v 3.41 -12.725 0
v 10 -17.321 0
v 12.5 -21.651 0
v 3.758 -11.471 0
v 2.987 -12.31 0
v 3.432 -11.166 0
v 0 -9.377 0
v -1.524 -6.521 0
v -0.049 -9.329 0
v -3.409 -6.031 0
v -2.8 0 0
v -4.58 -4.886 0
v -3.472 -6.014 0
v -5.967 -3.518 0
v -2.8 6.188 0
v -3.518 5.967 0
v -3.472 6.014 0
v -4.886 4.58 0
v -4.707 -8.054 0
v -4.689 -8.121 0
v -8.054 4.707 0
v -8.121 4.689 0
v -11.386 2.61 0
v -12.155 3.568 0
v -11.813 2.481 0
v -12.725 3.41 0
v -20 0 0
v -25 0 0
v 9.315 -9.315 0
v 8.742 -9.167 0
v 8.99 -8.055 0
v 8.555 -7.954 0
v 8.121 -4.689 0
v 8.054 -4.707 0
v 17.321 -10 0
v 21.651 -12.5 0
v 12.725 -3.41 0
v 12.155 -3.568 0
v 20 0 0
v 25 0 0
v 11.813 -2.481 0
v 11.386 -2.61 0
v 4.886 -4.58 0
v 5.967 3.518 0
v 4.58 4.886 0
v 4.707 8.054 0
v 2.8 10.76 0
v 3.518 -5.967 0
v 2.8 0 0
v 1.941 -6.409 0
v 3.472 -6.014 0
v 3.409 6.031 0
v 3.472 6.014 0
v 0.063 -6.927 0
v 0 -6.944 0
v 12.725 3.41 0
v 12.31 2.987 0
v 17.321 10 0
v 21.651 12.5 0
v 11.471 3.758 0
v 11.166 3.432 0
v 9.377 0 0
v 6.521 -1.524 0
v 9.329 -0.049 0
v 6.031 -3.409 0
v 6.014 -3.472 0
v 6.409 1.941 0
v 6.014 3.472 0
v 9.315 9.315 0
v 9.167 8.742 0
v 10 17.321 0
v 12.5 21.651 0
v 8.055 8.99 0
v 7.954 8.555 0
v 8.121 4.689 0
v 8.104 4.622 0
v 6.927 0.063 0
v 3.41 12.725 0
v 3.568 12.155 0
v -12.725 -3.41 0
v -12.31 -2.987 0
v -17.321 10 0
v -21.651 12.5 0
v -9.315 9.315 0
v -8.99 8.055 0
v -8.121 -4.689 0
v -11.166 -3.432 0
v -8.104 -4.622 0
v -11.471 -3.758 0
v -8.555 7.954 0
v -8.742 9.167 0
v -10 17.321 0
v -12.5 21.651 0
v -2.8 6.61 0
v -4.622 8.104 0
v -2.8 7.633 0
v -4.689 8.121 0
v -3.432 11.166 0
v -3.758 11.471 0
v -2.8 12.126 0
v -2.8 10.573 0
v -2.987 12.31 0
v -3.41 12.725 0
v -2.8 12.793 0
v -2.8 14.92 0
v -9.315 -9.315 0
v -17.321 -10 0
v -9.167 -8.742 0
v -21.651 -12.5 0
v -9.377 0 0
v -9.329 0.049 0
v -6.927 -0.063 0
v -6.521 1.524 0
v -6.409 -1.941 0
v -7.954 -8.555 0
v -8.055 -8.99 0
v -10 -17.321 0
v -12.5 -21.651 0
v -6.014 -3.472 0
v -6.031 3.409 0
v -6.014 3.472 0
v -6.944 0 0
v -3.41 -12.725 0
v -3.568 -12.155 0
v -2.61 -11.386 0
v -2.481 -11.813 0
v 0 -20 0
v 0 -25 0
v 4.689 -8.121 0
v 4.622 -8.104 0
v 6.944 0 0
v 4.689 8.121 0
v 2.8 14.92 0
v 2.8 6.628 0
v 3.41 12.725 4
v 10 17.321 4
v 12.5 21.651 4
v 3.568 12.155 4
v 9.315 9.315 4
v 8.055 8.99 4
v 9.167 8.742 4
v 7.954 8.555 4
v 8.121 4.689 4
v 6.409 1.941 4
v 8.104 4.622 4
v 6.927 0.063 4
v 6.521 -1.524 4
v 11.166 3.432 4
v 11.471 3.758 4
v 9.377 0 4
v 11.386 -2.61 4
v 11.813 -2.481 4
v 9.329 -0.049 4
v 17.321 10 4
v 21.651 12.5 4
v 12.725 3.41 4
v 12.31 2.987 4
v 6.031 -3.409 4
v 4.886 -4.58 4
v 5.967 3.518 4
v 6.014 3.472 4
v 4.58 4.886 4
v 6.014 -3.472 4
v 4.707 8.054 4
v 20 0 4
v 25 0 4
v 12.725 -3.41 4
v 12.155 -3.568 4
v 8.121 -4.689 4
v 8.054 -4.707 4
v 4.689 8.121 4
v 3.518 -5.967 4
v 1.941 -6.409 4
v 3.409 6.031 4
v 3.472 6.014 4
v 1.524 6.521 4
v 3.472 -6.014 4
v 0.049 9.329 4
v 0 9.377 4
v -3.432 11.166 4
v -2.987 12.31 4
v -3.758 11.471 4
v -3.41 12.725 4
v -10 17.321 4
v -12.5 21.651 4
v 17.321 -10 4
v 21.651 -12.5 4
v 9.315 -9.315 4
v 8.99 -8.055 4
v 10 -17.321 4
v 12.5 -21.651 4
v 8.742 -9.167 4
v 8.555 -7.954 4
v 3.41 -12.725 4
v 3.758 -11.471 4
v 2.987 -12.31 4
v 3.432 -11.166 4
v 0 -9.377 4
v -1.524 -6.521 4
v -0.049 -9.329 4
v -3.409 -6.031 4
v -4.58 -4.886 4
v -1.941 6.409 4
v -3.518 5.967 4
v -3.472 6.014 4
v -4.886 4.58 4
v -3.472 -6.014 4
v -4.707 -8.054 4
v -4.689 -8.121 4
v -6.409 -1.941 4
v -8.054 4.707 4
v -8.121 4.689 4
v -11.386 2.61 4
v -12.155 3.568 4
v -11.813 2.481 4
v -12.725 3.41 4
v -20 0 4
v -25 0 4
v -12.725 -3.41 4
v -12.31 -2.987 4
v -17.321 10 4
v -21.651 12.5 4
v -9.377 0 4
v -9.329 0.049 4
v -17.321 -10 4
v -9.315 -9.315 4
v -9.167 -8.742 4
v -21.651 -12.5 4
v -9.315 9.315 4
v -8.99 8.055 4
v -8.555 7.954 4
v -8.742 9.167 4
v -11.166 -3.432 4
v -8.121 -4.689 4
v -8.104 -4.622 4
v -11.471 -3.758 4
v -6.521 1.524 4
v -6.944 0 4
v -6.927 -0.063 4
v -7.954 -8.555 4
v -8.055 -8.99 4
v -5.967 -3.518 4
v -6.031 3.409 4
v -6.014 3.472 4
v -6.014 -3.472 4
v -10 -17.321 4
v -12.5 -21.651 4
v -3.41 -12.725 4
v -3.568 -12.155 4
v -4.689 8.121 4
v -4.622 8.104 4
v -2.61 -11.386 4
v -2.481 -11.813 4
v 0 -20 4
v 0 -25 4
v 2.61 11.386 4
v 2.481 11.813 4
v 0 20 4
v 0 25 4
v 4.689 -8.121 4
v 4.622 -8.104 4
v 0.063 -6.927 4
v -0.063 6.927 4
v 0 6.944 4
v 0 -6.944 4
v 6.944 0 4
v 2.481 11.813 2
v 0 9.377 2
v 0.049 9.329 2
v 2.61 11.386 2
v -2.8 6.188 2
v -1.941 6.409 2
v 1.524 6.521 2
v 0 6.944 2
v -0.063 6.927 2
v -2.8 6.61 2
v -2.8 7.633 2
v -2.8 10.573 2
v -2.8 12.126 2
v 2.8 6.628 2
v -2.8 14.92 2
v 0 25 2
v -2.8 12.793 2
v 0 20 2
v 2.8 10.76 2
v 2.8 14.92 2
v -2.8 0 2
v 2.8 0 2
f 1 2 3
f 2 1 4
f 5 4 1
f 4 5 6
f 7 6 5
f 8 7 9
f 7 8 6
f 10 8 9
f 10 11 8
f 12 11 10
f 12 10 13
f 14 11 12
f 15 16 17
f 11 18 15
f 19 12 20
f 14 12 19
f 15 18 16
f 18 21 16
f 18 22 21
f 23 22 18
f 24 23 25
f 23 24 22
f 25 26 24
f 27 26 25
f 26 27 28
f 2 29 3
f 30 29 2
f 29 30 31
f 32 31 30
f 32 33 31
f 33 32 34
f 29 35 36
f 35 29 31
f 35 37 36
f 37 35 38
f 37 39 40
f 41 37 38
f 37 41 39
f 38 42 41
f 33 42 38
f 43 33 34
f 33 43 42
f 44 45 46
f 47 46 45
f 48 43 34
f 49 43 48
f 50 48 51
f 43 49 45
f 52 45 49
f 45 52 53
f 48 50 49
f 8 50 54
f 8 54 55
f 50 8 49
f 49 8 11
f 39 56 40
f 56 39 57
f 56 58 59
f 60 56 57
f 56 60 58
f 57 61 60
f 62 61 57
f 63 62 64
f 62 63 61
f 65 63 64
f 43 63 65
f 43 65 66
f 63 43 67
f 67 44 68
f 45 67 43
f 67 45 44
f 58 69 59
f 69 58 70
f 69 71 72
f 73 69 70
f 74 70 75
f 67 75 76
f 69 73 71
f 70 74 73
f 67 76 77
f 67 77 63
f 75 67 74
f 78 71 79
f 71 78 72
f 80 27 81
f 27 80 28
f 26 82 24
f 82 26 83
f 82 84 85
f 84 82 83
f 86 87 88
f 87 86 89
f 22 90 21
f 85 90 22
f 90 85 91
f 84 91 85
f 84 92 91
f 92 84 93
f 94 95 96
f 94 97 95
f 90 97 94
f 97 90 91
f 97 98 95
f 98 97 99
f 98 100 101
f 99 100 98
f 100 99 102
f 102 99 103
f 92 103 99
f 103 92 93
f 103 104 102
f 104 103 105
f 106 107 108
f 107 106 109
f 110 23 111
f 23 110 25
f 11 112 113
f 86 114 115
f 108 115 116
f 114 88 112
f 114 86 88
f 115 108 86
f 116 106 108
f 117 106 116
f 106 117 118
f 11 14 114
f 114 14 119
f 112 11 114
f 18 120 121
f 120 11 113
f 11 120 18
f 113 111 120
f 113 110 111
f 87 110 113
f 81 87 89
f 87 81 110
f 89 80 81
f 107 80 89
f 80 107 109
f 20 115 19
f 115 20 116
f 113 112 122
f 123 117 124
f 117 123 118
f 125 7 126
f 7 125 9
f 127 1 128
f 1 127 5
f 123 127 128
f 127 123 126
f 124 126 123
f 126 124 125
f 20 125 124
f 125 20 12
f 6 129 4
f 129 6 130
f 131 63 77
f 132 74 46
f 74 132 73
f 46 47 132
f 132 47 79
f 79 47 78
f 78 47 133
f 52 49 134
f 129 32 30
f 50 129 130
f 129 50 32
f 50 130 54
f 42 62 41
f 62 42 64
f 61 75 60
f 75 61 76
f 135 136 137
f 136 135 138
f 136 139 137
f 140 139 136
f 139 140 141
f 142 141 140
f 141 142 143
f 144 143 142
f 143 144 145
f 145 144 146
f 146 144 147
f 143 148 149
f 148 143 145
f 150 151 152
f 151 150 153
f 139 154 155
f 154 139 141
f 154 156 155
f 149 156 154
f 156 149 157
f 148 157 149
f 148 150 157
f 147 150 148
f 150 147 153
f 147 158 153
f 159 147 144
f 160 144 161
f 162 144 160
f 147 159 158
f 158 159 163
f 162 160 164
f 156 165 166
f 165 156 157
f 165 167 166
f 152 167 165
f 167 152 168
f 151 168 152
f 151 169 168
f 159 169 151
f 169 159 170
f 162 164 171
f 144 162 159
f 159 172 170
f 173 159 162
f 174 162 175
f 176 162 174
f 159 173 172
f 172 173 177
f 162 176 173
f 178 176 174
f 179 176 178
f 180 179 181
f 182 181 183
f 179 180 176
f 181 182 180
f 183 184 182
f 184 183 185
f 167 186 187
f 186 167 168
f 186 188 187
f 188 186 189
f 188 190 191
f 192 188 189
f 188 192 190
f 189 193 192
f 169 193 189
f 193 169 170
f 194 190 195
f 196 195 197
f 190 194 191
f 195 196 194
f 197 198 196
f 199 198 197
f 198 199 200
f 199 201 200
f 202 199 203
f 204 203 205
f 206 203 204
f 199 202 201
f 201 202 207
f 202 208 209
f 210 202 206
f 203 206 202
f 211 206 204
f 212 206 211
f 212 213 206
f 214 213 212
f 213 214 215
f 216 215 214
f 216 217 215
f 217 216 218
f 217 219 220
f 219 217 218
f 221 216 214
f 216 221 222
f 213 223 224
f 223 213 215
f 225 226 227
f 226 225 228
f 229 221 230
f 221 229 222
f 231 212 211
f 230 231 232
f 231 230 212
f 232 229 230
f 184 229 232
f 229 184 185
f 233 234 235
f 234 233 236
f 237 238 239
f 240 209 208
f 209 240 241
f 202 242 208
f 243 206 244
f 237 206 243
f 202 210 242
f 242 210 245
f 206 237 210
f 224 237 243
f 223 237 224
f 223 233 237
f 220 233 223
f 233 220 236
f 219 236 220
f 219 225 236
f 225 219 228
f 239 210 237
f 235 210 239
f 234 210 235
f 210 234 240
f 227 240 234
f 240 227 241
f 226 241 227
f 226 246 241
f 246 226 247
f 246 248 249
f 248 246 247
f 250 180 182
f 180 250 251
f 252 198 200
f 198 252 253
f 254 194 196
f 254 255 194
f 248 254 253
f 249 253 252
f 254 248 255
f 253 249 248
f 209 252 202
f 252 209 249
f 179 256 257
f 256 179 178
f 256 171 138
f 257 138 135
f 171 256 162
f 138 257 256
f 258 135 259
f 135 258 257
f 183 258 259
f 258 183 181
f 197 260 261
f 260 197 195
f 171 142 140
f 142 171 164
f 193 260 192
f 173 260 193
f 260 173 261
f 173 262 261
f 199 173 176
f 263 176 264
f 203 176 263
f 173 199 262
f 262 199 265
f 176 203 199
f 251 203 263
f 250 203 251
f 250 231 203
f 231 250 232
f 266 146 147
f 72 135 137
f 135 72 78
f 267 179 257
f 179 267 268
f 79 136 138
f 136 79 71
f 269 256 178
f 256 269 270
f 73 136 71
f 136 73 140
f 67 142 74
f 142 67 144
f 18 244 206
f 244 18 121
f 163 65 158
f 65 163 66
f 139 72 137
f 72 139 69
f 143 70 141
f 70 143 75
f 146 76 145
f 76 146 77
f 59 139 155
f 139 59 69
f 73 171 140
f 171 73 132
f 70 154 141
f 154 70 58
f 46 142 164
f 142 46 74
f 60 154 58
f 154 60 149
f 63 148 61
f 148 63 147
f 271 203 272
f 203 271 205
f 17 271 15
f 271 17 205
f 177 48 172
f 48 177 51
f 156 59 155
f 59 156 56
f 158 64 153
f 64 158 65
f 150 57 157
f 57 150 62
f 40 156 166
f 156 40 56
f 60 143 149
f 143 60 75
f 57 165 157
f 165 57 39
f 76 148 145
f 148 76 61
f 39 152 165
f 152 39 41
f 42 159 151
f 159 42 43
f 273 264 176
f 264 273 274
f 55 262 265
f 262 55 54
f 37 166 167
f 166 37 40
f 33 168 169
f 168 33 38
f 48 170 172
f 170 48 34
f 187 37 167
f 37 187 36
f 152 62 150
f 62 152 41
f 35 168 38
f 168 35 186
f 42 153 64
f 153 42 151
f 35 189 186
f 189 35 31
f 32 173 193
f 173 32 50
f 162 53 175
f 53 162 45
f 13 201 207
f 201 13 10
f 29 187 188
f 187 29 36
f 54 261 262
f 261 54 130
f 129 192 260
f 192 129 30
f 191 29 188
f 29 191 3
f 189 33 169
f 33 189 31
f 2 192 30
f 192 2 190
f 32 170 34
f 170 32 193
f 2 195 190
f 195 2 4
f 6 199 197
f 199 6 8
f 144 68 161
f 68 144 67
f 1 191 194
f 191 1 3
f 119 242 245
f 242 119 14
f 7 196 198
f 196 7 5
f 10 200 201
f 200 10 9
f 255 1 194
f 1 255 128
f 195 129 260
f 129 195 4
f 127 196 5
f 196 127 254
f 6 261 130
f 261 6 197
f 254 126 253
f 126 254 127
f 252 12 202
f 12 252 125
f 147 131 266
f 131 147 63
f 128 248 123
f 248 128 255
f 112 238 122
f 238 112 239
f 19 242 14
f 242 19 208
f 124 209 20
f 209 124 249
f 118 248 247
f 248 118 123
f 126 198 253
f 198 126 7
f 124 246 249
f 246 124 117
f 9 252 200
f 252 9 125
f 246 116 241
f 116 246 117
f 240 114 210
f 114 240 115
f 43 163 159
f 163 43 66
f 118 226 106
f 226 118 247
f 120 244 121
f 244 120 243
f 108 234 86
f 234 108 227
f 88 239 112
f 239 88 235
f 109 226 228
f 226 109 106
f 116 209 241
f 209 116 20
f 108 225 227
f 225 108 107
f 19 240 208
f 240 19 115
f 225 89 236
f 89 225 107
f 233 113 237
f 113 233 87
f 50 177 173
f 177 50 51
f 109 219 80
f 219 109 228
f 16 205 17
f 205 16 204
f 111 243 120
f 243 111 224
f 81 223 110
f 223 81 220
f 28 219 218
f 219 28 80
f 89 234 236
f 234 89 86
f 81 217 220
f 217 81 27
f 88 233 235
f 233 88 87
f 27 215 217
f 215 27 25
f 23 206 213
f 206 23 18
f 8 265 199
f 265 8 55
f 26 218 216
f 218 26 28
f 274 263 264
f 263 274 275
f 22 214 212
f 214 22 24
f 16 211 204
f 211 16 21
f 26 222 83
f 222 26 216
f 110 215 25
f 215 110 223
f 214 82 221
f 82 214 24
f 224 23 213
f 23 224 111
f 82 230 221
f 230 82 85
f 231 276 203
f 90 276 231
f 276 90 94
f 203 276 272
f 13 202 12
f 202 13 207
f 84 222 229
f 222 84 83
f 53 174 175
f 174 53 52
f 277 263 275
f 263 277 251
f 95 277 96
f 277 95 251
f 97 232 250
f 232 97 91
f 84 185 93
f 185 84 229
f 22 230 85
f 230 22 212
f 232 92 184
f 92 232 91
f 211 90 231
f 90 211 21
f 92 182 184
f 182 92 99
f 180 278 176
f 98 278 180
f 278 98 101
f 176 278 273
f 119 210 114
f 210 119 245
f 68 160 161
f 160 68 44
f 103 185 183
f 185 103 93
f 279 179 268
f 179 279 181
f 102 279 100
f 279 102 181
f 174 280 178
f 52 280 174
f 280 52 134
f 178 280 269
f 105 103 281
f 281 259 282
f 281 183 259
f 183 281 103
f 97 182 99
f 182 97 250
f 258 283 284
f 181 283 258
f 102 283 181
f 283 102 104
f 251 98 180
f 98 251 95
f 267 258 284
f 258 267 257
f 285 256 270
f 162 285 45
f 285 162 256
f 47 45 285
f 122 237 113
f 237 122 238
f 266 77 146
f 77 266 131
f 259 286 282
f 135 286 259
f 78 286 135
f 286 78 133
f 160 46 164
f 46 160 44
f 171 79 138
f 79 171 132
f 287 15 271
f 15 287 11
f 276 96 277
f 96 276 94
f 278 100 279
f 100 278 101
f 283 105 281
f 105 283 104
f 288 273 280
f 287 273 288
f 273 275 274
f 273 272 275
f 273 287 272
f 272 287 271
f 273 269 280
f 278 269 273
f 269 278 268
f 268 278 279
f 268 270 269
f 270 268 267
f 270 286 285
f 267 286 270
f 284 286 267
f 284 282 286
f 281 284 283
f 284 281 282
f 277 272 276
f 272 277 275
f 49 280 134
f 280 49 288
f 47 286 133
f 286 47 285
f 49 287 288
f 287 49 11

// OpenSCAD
// file: clock_001.scad
//
// OpenSCAD 時計文字盤 001
//
$fn=200;

clock_001();




// clock 001
module clock_001(face_r = 180/2) {
    difference() {
        clock_face(face_r =face_r);
        cylinder(h=20, r=4.2);
    }
}

// 盤面
module clock_face(face_r=180/2)
{
    hourText12_under(r=face_r, h=4, w=10);//

    translate([0,0,4]) {
        hourText12(size=15,r=face_r); // 時間数字１２時間分
    }

    triangle_frame(h=face_r, w=50);

}








//===================================
// フレーム
//===================================

// 三角フレームの真ん中(n=1~4)
module triangle_frame_center(h=190, w=100, n=4) {
    linear_extrude(height=4) {
        for (i=[1:12]) {
            intersection_for(j=[0:n-1]) {
                rotate([0,0,-30*(i+j)]){ triangle1(h=h, w=w, scale=1.0);}   
            }
        }
    }
}

// 三角のフレーム
module triangle_frame(h=190, w=100) {
    for (i=[1:12]) {
        rotate([0,0,-30*i]) {
            linear_extrude(height=4) {
                difference() {
                    triangle1(h=h, w=w, scale=1.0);
                    triangle2(h=h, w=w, scale=0.8);
                }
            }
        }
    }
}

// 三角(2D一つ)
module triangle1(h=180, w=100, scale=1.0) {
    polygon([[0,h*scale],[-w*scale/2,(h-h*scale)/1],[w*scale/2,(h-h*scale)/2]]);
}

module triangle2(h=180, w=100, scale=1.0) {
    polygon([[0,h*scale],[-w/1.95,(h-h*scale)/3],[w*scale/2,(h-h*scale)/3]]);
}


//===================================
// 時間の数字の下敷き
//===================================

module hourText12_under(r=190, h=4, w=20) {
    for (i=[1:12]) {
        rotate([0,0,i*-30]) {
            translate([0,r,0]) {
                linear_extrude(height = h) {
                    circle( w);
                }
            }
        }
    }
}



//===================================
// 時間の数字
//===================================


// 時間数字１２時間分
module hourText12(r=190, h=4, size=30) {
    for (i=[1:12]) {
        hourText(str(i), r=r, h=h, angle=i*-30, size=size);
    }
}

// 時間数字表示(1つ)
module hourText(text="1", r=100, h=4, angle=0, size=20) {
    rotate([0,0,angle]) {
        translate([0,r,0]) {
            rotate([0,0,-angle]) {  // 文字の向きを修正
                linear_extrude(height = h) {
                    text(text, size=size, font="Arial:style=Black", halign="center", valign="center");
                }
            }
        }
    }
}
// main file
//
// CLOCK 001 用　振り子オーナメント
//

use <clock_001.scad>
clock_001_swing();

module clock_001_swing(scale = 50/180) {

    difference() {
        scale([scale, scale, 1])
            triangle_frame(h=180/2, w=50);

        translate([-5.6/2, 0, 0]) cube([5.6,50,2]);
    }

}
